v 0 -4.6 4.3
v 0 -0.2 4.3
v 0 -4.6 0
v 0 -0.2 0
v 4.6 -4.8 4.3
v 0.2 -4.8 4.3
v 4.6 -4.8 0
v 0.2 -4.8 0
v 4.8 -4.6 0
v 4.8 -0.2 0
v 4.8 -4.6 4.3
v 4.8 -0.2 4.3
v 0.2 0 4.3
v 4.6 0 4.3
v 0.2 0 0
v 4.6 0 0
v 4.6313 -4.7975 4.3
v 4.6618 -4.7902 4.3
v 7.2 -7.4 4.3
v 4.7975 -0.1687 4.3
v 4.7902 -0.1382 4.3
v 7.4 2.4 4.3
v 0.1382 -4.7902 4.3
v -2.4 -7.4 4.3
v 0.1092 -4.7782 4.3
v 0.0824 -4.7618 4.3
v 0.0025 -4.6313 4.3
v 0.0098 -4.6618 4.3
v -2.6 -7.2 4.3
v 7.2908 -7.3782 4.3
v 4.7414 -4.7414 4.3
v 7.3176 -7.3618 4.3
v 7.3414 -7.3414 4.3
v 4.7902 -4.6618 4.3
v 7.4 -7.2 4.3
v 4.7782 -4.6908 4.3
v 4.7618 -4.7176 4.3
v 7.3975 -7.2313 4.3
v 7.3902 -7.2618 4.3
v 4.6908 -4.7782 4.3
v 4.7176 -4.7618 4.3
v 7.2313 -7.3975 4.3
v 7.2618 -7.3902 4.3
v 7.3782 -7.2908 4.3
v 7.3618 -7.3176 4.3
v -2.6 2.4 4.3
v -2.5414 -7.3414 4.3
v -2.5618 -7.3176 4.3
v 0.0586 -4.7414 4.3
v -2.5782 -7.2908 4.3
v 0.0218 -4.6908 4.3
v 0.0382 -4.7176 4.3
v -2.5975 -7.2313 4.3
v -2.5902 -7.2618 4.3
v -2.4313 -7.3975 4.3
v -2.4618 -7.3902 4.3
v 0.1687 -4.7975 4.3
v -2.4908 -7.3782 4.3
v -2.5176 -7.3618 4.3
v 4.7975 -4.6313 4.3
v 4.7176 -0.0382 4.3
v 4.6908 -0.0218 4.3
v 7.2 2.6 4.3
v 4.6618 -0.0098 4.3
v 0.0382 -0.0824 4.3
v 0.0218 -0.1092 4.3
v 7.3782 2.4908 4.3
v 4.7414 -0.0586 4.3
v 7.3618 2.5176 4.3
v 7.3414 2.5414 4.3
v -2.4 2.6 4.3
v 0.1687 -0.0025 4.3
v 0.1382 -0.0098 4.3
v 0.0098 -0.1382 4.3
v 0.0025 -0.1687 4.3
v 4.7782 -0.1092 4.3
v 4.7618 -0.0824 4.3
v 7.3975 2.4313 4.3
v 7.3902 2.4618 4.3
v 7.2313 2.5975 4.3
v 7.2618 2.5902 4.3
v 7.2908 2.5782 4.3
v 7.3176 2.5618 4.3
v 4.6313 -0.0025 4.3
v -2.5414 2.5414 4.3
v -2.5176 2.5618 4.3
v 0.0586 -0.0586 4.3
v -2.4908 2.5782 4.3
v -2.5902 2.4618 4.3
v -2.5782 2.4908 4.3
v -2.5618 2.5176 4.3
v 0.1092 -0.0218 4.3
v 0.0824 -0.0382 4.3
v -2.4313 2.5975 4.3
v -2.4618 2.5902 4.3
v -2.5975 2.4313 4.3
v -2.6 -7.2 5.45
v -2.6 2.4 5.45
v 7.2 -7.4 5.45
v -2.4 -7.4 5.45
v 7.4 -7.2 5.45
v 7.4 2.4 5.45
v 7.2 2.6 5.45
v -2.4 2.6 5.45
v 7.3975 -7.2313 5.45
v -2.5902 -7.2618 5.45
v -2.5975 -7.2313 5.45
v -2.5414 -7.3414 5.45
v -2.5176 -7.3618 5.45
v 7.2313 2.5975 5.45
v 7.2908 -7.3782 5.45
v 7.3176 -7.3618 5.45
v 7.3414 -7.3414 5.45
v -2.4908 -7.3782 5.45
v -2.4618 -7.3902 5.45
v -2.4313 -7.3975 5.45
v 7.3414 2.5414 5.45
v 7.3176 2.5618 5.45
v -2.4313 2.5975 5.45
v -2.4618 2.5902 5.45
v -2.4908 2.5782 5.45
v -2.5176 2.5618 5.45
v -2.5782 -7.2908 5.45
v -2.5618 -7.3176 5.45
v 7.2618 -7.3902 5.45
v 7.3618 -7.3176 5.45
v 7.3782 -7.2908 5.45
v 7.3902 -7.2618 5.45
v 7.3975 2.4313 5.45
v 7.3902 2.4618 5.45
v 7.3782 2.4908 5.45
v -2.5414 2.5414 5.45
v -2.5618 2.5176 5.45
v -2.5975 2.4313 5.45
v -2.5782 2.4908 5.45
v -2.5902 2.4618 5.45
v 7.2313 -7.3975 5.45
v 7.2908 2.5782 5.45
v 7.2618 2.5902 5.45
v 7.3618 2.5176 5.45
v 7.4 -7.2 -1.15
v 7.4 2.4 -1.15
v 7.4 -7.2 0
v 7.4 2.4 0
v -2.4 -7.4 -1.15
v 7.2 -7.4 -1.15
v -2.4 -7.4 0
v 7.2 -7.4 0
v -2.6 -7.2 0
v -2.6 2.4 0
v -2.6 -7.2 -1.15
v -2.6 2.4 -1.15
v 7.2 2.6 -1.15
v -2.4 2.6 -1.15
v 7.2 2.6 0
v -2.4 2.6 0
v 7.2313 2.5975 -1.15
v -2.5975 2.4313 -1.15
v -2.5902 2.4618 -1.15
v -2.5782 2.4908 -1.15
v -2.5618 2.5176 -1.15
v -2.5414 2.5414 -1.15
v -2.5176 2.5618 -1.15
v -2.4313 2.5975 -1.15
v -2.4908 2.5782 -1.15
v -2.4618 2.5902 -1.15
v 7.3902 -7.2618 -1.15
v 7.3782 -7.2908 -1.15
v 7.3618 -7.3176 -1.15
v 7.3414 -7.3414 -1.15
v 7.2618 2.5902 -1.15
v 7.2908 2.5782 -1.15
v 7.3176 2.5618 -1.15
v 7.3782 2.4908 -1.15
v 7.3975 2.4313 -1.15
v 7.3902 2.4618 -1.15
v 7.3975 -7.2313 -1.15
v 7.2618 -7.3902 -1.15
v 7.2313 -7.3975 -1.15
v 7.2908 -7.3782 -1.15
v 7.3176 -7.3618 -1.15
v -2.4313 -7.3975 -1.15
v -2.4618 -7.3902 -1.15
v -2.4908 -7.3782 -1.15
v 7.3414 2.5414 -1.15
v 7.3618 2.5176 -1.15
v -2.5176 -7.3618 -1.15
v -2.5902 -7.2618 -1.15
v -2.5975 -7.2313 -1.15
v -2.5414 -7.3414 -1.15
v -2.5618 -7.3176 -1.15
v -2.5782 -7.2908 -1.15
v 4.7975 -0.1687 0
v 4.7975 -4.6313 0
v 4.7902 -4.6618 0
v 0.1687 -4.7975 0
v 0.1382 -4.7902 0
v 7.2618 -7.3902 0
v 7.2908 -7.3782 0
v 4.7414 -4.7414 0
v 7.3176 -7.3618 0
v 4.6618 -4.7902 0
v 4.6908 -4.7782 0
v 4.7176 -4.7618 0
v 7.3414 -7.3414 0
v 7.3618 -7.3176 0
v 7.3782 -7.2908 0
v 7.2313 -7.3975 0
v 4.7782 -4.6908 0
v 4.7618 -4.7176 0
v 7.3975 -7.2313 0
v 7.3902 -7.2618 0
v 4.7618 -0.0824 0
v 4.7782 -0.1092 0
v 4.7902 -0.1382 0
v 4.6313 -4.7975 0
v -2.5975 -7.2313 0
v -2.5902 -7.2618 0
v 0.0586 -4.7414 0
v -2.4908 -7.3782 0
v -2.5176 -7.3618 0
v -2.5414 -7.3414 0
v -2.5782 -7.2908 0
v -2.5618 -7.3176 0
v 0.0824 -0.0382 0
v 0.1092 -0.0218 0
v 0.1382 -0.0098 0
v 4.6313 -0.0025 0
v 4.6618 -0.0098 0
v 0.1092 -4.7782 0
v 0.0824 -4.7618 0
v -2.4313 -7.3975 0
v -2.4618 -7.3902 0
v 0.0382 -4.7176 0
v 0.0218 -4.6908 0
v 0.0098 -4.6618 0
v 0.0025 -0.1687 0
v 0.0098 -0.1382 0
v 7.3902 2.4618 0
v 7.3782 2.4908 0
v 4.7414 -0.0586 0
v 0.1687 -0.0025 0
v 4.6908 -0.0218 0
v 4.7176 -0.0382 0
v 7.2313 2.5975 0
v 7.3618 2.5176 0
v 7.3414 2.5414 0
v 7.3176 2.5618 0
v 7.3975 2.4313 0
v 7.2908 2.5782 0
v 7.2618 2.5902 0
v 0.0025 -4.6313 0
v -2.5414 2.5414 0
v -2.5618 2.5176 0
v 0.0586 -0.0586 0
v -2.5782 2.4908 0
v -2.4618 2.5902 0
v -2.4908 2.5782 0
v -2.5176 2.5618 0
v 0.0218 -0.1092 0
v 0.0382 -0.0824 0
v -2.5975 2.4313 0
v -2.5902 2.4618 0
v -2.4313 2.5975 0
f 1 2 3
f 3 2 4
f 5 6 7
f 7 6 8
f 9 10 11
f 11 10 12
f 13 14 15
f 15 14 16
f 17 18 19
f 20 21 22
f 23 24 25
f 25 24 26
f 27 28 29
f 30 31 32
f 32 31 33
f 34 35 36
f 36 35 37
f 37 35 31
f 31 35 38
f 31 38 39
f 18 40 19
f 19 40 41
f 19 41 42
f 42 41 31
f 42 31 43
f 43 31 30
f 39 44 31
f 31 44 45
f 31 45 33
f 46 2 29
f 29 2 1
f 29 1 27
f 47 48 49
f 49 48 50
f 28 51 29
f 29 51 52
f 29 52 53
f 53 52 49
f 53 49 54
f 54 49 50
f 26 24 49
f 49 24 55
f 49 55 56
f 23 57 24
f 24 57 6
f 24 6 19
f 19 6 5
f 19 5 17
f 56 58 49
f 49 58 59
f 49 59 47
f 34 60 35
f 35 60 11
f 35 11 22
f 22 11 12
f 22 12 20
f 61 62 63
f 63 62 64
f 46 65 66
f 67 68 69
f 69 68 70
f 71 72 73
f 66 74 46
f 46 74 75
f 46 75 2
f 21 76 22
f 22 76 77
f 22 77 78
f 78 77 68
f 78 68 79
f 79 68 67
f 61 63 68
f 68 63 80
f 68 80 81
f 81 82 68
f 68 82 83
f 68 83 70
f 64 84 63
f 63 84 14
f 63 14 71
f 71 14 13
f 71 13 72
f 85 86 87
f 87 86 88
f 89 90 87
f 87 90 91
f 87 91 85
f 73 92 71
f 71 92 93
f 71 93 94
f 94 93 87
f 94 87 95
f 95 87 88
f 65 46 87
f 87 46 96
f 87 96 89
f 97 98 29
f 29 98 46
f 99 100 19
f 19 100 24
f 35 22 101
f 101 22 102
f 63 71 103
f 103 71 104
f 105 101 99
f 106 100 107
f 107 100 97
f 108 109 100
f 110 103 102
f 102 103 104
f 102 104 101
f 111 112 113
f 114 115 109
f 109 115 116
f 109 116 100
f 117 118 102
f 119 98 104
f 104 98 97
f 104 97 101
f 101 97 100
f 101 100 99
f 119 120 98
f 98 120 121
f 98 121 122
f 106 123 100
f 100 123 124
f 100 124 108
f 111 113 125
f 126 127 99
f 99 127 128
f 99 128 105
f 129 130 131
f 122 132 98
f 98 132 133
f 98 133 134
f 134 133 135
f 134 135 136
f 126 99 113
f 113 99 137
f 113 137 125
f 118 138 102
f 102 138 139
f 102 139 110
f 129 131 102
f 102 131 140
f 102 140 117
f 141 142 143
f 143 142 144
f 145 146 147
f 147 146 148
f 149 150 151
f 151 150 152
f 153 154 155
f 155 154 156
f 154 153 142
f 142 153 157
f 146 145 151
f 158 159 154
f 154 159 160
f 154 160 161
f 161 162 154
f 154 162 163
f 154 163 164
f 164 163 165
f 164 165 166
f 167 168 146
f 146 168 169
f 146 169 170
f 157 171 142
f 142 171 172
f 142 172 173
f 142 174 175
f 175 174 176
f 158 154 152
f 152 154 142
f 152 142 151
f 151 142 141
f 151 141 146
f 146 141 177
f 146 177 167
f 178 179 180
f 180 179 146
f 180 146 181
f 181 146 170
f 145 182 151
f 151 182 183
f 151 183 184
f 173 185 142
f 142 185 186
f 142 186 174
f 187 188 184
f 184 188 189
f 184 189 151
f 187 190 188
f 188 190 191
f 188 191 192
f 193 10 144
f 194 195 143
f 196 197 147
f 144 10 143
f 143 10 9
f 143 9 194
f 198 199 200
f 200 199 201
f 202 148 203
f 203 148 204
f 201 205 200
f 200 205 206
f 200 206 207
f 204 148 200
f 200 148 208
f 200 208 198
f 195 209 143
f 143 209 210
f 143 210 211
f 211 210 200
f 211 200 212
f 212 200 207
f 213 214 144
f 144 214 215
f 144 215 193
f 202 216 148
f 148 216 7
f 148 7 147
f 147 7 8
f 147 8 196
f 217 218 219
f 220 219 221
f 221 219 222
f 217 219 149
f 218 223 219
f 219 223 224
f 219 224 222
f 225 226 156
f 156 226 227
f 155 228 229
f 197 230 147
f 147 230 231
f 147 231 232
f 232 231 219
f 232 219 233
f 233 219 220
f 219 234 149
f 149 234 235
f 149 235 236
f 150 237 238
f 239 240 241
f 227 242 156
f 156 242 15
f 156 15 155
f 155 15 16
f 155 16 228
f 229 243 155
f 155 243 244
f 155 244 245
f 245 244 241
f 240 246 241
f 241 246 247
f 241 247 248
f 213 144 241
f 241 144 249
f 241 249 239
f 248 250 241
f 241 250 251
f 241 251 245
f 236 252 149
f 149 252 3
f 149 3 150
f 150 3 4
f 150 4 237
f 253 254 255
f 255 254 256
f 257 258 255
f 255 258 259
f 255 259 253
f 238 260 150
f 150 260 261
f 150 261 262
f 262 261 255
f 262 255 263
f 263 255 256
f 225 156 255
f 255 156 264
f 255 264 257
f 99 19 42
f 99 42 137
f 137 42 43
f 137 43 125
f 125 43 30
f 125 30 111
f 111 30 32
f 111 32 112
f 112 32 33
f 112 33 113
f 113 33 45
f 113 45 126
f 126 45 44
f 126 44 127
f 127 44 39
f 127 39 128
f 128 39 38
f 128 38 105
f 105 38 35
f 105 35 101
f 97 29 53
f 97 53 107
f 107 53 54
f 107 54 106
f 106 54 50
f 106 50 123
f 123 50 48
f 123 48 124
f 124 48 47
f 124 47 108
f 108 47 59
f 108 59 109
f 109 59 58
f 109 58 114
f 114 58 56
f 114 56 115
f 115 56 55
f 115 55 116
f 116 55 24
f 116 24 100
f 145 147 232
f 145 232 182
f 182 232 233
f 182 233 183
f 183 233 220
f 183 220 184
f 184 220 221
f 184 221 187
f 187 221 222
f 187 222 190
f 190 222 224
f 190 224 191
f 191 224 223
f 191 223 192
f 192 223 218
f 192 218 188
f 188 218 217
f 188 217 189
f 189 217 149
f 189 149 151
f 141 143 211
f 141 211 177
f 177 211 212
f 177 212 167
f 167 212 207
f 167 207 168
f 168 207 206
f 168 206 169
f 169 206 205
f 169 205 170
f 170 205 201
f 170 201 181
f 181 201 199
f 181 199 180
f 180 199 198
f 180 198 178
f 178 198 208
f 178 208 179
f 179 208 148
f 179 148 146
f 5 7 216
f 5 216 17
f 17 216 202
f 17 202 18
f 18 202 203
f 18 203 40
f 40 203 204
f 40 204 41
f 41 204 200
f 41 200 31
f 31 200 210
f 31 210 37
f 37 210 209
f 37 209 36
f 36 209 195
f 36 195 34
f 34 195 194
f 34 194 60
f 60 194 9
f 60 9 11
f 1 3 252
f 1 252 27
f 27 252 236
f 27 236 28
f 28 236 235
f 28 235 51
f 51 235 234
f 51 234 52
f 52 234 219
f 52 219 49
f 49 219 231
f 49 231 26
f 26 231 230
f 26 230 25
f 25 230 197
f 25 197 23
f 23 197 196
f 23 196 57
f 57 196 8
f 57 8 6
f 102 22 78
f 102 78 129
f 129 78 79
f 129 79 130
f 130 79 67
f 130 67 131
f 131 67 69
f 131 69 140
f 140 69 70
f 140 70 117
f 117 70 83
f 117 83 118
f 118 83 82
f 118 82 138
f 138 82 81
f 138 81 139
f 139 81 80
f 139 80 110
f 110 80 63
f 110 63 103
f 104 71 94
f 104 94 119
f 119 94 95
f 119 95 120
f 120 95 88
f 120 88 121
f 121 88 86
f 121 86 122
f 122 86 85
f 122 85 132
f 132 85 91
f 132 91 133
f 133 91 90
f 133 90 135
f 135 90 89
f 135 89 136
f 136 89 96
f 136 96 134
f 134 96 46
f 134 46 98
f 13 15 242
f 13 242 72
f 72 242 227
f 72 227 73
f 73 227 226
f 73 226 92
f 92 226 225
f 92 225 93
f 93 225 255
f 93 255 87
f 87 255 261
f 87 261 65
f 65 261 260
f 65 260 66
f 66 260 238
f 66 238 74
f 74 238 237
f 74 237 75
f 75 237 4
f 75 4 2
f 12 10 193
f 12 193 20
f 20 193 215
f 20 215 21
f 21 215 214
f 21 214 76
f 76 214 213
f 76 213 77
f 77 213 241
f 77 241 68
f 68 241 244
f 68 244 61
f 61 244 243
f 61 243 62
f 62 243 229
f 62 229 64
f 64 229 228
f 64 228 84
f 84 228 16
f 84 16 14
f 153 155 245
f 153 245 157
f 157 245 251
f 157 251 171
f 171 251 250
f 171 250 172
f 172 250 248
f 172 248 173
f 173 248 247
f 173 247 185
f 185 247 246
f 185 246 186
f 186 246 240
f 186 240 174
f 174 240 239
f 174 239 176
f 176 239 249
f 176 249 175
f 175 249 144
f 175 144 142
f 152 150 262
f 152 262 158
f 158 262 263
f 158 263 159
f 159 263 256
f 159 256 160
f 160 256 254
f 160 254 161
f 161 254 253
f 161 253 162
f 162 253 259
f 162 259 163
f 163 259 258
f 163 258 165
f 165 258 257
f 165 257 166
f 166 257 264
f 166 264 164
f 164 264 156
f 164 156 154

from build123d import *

# Parameters (mm, degrees)
SKETCH2_W           = 4.8
SKETCH2_H           = 4.8
BOSS_EXTRUDE1_DEPTH = 4.3
SKETCH3_W           = 10
SKETCH3_H           = 10
BOSS_EXTRUDE2_DEPTH = 1.15
SKETCH4_W           = 10
SKETCH4_H           = 10
BOSS_EXTRUDE4_DEPTH = 1.15
FILLET2_R           = 0.2


with BuildPart() as part:
    # Sketch2 → Boss-Extrude1 (new body)
    with BuildSketch(Plane.XY):
        with Locations((2.4, -2.4)):
            Rectangle(SKETCH2_W, SKETCH2_H)
    extrude(amount=BOSS_EXTRUDE1_DEPTH)

    # Sketch3 → Boss-Extrude2 (add)
    with BuildSketch(Plane.XY.offset(4.3)):
        with Locations((2.4, -2.4)):
            Rectangle(SKETCH3_W, SKETCH3_H)
    extrude(amount=BOSS_EXTRUDE2_DEPTH)

    # Sketch4 → Boss-Extrude4 (add)
    with BuildSketch(Plane(origin=(0, 0, 0), x_dir=(-1, 0, 0), z_dir=(0, 0, -1))):
        with Locations((-2.4, -2.4)):
            Rectangle(SKETCH4_W, SKETCH4_H)
    extrude(amount=BOSS_EXTRUDE4_DEPTH)

    # Fillet2
    fillet2_edges = [part.edges().sort_by_distance(p)[0] for p in [
        (-2.6, 2.6, 4.875),
        (-2.6, -7.4, 4.875),
        (7.4, -7.4, 4.875),
        (7.4, 2.6, 4.875),
        (7.4, 2.6, -0.575),
        (7.4, -7.4, -0.575),
        (-2.6, -7.4, -0.575),
        (-2.6, 2.6, -0.575),
        (0, 0, 2.15),
        (4.8, 0, 2.15),
        (4.8, -4.8, 2.15),
        (0, -4.8, 2.15),
    ]]
    fillet(fillet2_edges, radius=FILLET2_R)


solid = part.part
